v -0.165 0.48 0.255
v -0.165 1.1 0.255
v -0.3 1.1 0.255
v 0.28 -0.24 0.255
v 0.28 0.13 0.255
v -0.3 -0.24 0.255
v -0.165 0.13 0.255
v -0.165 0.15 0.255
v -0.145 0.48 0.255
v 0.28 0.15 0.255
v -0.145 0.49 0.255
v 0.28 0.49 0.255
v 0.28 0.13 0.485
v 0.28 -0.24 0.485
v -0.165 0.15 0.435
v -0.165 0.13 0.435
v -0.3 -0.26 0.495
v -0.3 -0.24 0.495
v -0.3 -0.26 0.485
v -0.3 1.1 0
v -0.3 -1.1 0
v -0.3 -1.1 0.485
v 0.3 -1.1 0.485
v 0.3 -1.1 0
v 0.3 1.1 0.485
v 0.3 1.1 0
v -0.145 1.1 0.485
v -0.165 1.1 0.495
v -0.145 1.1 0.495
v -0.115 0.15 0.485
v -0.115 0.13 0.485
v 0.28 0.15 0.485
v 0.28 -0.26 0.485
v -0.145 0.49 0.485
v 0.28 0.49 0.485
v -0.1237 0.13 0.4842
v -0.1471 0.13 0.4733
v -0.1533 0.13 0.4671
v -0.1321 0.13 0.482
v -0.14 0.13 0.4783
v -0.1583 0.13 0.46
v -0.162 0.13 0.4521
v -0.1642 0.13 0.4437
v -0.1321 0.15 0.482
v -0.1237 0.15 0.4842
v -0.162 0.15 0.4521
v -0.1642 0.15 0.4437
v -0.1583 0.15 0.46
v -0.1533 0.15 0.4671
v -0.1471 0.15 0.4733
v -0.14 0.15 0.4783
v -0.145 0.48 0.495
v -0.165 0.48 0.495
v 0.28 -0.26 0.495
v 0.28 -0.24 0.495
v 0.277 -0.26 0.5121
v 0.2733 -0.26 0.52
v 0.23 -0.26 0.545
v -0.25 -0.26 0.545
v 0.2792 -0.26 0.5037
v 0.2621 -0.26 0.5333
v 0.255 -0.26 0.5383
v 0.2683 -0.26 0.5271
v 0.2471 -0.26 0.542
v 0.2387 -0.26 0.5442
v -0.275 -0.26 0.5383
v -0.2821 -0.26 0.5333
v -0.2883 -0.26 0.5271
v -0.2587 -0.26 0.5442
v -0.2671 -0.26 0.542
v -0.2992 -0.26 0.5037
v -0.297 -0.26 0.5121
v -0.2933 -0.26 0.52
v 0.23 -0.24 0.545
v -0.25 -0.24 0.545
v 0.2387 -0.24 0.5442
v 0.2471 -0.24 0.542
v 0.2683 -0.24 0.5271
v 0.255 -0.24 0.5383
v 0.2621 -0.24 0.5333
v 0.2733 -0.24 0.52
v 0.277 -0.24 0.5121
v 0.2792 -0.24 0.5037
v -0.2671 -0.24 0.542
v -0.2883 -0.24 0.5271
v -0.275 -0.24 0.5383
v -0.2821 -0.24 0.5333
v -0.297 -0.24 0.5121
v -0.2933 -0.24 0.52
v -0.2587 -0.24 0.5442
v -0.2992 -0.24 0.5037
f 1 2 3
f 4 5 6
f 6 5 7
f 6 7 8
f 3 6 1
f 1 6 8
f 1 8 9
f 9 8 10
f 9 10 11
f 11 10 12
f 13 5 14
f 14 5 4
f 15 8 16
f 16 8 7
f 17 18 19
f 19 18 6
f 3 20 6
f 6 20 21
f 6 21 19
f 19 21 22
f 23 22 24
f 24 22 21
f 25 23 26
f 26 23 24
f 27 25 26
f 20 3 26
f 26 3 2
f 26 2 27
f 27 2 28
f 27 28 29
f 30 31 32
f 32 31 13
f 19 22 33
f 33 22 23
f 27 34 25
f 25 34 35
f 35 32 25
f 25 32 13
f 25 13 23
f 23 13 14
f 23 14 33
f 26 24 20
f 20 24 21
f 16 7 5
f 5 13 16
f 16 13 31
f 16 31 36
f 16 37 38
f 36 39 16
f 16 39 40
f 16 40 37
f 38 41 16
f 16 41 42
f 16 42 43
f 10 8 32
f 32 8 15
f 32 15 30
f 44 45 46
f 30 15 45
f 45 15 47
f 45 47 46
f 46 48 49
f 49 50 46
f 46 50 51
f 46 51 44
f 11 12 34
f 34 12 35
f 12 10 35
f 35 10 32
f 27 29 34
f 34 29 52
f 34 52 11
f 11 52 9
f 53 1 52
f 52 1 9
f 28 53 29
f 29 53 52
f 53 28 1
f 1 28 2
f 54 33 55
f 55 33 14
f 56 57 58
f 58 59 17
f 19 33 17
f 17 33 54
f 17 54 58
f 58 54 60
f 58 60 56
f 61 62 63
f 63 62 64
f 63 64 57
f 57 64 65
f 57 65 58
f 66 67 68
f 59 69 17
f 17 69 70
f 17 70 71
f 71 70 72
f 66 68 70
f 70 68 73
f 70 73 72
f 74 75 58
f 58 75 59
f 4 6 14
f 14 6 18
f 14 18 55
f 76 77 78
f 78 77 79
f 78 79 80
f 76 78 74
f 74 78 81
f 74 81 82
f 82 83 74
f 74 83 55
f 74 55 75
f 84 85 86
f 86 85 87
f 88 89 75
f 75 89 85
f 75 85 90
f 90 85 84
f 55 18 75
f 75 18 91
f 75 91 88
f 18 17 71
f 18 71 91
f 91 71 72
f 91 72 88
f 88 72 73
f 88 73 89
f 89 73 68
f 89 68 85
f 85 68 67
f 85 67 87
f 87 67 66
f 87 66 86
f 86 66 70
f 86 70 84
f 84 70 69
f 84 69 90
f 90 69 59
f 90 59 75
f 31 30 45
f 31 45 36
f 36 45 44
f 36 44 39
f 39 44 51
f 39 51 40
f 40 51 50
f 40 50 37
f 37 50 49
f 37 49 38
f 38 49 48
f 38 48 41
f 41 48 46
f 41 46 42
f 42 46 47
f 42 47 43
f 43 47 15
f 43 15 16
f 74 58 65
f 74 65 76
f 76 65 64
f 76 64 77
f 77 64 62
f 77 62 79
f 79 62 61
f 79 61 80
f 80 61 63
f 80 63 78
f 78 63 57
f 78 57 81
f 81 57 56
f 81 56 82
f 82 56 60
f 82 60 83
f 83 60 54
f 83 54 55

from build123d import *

# Parameters (mm, degrees)
SKETCH_1_W          = 0.6
SKETCH_1_H          = 2.2
EXTRUDE_1_DEPTH     = 0.485
SKETCH_2_W          = 0.23
SKETCH_2_H          = 1.36
CUT_EXTRUDE_1_DEPTH = 0.135
SKETCH_3_W          = 0.23
SKETCH_3_H          = 0.39
CUT_EXTRUDE_2_DEPTH = 0.445
SKETCH_4_W          = 0.23
SKETCH_4_H          = 0.34
CUT_EXTRUDE_3_DEPTH = 0.445
SKETCH_6_W          = 0.23
SKETCH_6_H          = 0.61
CUT_EXTRUDE_4_DEPTH = 0.02
SKETCH_7_W          = 0.24
SKETCH_7_H          = 0.62
EXTRUDE_2_DEPTH     = 0.02
SKETCH_8_W          = 0.58
SKETCH_8_H          = 0.29
EXTRUDE_3_DEPTH     = 0.02
FILLET_1_R          = 0.05
FILLET_2_R          = 0.05
FILLET_3_R          = 0.05


with BuildPart() as part:
    # 스케치1 → 보스-돌출1 (new body)
    with BuildSketch(Plane.XY):
        Rectangle(SKETCH_1_W, SKETCH_1_H)
    extrude(amount=EXTRUDE_1_DEPTH)

    # 스케치2 → 컷-돌출1 (cut)
    with BuildSketch(Plane.ZY.offset(0.3)):
        with Locations((0.37, 0.42)):
            Rectangle(SKETCH_2_W, SKETCH_2_H)
    extrude(amount=-CUT_EXTRUDE_1_DEPTH, mode=Mode.SUBTRACT)

    # 스케치3 → 컷-돌출2 (cut)
    with BuildSketch(Plane.ZY.offset(0.165)):
        with Locations((0.37, -0.065)):
            Rectangle(SKETCH_3_W, SKETCH_3_H)
    extrude(amount=-CUT_EXTRUDE_2_DEPTH, mode=Mode.SUBTRACT)

    # 스케치4 → 컷-돌출3 (cut)
    with BuildSketch(Plane.ZY.offset(0.165)):
        with Locations((0.37, 0.32)):
            Rectangle(SKETCH_4_W, SKETCH_4_H)
    extrude(amount=-CUT_EXTRUDE_3_DEPTH, mode=Mode.SUBTRACT)

    # 스케치6 → 컷-돌출4 (cut)
    with BuildSketch(Plane.ZY.offset(0.165)):
        with Locations((0.37, 0.795)):
            Rectangle(SKETCH_6_W, SKETCH_6_H)
    extrude(amount=-CUT_EXTRUDE_4_DEPTH, mode=Mode.SUBTRACT)

    # 스케치7 → 보스-돌출2 (add)
    with BuildSketch(Plane.ZY.offset(0.145)):
        with Locations((0.375, 0.79)):
            Rectangle(SKETCH_7_W, SKETCH_7_H)
    extrude(amount=EXTRUDE_2_DEPTH)

    # 스케치8 → 보스-돌출3 (add)
    with BuildSketch(Plane(origin=(0, -0.26, 0), x_dir=(1, 0, 0), z_dir=(0, 1, 0))):
        with Locations((-0.01, -0.4)):
            Rectangle(SKETCH_8_W, SKETCH_8_H)
    extrude(amount=EXTRUDE_3_DEPTH)

    # 필렛1
    fillet_1_edges = [part.edges().sort_by_distance(p)[0] for p in [
        (-0.3, -0.25, 0.545),
    ]]
    fillet(fillet_1_edges, radius=FILLET_1_R)

    # 필렛2
    fillet_2_edges = [part.edges().sort_by_distance(p)[0] for p in [
        (-0.165, 0.14, 0.485),
    ]]
    fillet(fillet_2_edges, radius=FILLET_2_R)

    # 필렛3
    fillet_3_edges = [part.edges().sort_by_distance(p)[0] for p in [
        (0.28, -0.25, 0.545),
    ]]
    fillet(fillet_3_edges, radius=FILLET_3_R)


solid = part.part
